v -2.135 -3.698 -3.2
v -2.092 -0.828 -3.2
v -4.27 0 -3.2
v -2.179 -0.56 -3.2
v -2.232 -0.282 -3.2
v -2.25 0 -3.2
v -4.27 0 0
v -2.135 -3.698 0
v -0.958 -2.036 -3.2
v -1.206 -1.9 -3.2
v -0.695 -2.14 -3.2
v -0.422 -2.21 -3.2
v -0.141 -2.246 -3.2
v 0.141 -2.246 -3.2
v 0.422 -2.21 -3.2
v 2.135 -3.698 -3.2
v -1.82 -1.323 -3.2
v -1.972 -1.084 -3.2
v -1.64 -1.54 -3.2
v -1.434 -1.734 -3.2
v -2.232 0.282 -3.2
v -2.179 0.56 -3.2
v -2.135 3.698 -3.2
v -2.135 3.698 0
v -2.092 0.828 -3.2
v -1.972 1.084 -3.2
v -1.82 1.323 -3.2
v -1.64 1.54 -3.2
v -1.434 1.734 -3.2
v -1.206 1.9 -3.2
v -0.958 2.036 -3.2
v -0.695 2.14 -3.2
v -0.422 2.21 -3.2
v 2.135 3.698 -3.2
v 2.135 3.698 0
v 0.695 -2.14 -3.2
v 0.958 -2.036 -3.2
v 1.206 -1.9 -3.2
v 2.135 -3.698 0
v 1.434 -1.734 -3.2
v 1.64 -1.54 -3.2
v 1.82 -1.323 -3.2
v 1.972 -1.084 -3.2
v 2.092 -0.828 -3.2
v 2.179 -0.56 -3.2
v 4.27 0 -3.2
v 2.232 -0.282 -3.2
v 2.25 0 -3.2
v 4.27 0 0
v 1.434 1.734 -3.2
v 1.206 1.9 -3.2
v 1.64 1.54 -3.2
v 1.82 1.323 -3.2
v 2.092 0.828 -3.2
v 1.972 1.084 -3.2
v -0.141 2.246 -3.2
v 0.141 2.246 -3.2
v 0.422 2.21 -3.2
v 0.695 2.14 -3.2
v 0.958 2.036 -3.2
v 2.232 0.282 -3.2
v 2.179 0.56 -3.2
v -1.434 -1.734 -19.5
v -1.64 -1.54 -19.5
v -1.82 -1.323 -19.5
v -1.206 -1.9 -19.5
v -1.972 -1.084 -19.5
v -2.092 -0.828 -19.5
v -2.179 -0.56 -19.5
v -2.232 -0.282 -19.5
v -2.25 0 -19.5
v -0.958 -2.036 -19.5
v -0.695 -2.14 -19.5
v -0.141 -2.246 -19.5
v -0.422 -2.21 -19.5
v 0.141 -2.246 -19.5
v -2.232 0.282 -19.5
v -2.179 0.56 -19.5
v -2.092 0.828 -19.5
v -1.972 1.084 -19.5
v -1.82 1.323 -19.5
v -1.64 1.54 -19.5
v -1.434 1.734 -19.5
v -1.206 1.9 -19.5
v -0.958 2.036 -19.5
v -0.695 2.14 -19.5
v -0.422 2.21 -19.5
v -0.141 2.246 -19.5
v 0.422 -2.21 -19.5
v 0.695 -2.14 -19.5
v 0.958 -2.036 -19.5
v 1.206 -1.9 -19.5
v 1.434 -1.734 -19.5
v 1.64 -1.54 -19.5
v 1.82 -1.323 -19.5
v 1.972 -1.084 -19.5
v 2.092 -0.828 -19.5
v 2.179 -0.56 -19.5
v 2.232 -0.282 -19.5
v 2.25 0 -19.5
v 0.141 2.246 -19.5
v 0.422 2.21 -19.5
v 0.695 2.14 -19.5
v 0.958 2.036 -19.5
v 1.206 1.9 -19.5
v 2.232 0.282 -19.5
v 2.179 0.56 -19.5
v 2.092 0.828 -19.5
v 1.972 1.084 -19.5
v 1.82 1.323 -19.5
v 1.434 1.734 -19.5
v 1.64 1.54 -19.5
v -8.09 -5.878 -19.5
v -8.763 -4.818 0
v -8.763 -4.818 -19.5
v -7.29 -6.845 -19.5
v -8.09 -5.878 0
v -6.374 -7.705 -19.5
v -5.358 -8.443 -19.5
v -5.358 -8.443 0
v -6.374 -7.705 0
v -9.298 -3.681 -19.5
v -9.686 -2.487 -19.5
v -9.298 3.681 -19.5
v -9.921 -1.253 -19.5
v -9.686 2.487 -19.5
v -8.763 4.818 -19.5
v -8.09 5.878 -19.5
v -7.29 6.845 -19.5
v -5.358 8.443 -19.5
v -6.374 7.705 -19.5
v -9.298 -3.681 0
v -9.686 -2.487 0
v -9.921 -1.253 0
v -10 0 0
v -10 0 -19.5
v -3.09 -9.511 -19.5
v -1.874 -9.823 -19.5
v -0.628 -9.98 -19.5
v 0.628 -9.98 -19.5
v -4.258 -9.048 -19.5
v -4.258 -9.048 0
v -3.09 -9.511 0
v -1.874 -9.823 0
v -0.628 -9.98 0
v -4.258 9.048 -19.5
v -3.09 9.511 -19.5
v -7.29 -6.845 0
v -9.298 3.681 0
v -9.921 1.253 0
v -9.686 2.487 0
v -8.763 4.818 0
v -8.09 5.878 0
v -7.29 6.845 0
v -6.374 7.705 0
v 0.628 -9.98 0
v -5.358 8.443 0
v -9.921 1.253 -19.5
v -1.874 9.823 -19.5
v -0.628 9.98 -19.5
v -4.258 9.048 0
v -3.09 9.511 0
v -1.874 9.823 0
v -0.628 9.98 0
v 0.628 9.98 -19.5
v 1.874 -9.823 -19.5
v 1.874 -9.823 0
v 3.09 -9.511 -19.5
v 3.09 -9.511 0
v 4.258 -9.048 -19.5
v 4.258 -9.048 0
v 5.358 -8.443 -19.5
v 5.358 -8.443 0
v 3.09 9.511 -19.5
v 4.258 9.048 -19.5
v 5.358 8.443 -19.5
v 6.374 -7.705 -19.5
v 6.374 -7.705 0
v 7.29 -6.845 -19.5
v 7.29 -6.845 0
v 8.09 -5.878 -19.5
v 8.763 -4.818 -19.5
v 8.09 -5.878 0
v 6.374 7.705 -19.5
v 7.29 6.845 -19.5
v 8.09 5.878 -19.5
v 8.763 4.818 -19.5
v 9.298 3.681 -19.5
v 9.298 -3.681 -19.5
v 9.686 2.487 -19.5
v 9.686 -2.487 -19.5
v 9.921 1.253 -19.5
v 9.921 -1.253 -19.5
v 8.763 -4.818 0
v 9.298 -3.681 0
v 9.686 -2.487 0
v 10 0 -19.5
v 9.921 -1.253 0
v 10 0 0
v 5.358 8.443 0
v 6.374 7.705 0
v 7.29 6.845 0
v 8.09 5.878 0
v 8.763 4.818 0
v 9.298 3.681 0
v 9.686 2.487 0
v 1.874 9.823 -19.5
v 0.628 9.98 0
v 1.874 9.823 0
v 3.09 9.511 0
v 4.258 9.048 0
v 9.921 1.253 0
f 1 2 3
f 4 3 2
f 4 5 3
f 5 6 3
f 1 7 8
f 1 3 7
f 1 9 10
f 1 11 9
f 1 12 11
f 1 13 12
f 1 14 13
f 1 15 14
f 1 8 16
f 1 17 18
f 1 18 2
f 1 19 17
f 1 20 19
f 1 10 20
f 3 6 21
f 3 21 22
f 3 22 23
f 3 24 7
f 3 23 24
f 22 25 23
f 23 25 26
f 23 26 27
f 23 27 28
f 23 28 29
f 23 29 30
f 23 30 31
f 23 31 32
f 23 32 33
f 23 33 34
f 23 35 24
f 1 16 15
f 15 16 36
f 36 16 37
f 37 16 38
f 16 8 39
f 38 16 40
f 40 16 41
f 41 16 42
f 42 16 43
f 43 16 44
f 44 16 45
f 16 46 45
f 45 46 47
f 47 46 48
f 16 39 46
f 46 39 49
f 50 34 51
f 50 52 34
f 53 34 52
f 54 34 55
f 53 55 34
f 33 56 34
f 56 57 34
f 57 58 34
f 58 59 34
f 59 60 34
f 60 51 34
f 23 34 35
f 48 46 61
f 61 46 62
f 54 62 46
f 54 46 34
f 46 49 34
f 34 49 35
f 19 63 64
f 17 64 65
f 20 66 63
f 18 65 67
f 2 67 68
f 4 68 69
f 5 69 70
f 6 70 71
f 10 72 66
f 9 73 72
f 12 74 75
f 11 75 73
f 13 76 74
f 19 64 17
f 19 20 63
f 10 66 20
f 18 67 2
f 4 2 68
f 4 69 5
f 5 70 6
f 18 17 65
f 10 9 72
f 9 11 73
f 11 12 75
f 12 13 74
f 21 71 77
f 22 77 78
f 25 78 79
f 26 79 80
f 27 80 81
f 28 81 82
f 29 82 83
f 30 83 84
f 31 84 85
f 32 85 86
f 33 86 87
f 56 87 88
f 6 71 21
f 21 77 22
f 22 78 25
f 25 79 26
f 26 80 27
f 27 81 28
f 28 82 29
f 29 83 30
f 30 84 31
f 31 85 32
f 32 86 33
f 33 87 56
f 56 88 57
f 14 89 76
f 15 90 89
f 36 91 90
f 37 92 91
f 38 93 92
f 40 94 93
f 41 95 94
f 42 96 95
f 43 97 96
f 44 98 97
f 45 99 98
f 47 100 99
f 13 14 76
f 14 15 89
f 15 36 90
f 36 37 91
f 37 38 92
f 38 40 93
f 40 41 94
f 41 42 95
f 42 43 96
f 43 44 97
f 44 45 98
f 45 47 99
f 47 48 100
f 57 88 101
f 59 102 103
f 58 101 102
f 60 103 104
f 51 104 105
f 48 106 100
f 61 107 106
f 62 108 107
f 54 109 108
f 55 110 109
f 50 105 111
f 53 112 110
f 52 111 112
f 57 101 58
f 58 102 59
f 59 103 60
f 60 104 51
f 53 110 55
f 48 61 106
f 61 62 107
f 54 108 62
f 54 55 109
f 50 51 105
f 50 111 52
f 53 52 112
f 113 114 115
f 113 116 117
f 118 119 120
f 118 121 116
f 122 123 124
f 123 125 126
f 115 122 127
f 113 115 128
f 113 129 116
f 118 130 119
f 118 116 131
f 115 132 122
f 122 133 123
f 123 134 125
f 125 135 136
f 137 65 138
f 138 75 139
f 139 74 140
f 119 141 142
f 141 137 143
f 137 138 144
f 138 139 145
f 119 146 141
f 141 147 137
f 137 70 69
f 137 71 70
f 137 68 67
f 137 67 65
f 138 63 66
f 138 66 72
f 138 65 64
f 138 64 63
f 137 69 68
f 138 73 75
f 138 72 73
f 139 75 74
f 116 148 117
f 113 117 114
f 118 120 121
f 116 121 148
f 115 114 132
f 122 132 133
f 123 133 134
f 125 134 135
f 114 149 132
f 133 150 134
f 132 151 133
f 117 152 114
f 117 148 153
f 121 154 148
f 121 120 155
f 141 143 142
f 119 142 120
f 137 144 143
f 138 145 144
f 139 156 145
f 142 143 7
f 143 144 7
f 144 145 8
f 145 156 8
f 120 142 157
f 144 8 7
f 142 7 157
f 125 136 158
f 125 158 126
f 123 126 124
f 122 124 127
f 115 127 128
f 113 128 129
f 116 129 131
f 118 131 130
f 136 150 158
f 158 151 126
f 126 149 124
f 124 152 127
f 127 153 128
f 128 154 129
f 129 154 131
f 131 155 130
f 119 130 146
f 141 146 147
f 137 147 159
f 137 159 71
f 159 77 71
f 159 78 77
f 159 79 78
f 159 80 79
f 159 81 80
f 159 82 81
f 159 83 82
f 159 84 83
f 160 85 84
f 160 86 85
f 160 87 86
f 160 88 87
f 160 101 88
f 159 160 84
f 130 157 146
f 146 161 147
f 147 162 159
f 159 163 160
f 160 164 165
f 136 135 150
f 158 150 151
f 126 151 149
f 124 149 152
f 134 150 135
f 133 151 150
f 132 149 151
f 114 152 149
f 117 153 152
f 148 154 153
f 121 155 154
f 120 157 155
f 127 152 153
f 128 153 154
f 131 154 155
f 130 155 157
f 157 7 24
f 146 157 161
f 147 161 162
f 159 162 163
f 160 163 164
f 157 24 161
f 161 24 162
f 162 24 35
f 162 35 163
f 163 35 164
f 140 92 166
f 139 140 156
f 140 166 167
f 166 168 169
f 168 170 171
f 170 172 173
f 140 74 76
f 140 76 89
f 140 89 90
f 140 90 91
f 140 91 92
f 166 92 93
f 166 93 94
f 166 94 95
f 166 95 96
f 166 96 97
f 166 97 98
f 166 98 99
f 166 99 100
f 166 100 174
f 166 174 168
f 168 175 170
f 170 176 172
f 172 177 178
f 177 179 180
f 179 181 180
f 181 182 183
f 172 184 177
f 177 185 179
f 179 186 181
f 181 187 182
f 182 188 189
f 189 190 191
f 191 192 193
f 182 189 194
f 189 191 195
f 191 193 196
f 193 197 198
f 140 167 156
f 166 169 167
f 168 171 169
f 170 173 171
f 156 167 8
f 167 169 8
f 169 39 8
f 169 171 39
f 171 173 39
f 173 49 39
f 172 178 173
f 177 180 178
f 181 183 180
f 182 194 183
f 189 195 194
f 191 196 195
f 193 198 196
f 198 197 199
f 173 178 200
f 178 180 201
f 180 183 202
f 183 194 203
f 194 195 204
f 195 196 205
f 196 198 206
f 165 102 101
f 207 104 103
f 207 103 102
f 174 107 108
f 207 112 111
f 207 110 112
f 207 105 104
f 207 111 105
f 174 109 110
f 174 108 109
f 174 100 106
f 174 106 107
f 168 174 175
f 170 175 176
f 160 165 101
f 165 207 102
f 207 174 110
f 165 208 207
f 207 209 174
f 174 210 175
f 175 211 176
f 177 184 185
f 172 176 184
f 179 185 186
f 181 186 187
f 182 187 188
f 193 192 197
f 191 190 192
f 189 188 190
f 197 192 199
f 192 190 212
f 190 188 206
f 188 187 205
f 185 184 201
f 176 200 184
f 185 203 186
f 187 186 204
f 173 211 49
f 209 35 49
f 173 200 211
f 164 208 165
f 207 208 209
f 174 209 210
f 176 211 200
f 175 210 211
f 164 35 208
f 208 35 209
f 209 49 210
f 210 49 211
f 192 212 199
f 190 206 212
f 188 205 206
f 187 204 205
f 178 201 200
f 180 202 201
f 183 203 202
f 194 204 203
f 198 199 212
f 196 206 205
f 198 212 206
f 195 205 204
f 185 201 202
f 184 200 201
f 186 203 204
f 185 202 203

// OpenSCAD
$fn = 50;

difference() {
	union() {
		translate(v = [0, 0, -19.5]) {
			cylinder(h = 19.5, r = 10.0);
		}
	}
	union() {
		translate(v = [0, 0, 0]) {
			rotate(a = [0, 0, 0]) {
				difference() {
					union() {
						translate(v = [0, 0, -3.2]) {
							linear_extrude(height = 3.2) {
								polygon(points = [[4.2698, 0.0], [2.1349000000000005, 3.697755269078796], [-2.134899999999999, 3.6977552690787965], [-4.2698, 5.228996902999369e-16], [-2.134900000000002, -3.6977552690787956], [2.1348999999999974, -3.697755269078798]]);
							}
						}
					}
					union();
				}
			}
		}
		#translate(v = [0, 0, -100.0]) {
			cylinder(h = 200, r = 2.25);
		}
	}
}
